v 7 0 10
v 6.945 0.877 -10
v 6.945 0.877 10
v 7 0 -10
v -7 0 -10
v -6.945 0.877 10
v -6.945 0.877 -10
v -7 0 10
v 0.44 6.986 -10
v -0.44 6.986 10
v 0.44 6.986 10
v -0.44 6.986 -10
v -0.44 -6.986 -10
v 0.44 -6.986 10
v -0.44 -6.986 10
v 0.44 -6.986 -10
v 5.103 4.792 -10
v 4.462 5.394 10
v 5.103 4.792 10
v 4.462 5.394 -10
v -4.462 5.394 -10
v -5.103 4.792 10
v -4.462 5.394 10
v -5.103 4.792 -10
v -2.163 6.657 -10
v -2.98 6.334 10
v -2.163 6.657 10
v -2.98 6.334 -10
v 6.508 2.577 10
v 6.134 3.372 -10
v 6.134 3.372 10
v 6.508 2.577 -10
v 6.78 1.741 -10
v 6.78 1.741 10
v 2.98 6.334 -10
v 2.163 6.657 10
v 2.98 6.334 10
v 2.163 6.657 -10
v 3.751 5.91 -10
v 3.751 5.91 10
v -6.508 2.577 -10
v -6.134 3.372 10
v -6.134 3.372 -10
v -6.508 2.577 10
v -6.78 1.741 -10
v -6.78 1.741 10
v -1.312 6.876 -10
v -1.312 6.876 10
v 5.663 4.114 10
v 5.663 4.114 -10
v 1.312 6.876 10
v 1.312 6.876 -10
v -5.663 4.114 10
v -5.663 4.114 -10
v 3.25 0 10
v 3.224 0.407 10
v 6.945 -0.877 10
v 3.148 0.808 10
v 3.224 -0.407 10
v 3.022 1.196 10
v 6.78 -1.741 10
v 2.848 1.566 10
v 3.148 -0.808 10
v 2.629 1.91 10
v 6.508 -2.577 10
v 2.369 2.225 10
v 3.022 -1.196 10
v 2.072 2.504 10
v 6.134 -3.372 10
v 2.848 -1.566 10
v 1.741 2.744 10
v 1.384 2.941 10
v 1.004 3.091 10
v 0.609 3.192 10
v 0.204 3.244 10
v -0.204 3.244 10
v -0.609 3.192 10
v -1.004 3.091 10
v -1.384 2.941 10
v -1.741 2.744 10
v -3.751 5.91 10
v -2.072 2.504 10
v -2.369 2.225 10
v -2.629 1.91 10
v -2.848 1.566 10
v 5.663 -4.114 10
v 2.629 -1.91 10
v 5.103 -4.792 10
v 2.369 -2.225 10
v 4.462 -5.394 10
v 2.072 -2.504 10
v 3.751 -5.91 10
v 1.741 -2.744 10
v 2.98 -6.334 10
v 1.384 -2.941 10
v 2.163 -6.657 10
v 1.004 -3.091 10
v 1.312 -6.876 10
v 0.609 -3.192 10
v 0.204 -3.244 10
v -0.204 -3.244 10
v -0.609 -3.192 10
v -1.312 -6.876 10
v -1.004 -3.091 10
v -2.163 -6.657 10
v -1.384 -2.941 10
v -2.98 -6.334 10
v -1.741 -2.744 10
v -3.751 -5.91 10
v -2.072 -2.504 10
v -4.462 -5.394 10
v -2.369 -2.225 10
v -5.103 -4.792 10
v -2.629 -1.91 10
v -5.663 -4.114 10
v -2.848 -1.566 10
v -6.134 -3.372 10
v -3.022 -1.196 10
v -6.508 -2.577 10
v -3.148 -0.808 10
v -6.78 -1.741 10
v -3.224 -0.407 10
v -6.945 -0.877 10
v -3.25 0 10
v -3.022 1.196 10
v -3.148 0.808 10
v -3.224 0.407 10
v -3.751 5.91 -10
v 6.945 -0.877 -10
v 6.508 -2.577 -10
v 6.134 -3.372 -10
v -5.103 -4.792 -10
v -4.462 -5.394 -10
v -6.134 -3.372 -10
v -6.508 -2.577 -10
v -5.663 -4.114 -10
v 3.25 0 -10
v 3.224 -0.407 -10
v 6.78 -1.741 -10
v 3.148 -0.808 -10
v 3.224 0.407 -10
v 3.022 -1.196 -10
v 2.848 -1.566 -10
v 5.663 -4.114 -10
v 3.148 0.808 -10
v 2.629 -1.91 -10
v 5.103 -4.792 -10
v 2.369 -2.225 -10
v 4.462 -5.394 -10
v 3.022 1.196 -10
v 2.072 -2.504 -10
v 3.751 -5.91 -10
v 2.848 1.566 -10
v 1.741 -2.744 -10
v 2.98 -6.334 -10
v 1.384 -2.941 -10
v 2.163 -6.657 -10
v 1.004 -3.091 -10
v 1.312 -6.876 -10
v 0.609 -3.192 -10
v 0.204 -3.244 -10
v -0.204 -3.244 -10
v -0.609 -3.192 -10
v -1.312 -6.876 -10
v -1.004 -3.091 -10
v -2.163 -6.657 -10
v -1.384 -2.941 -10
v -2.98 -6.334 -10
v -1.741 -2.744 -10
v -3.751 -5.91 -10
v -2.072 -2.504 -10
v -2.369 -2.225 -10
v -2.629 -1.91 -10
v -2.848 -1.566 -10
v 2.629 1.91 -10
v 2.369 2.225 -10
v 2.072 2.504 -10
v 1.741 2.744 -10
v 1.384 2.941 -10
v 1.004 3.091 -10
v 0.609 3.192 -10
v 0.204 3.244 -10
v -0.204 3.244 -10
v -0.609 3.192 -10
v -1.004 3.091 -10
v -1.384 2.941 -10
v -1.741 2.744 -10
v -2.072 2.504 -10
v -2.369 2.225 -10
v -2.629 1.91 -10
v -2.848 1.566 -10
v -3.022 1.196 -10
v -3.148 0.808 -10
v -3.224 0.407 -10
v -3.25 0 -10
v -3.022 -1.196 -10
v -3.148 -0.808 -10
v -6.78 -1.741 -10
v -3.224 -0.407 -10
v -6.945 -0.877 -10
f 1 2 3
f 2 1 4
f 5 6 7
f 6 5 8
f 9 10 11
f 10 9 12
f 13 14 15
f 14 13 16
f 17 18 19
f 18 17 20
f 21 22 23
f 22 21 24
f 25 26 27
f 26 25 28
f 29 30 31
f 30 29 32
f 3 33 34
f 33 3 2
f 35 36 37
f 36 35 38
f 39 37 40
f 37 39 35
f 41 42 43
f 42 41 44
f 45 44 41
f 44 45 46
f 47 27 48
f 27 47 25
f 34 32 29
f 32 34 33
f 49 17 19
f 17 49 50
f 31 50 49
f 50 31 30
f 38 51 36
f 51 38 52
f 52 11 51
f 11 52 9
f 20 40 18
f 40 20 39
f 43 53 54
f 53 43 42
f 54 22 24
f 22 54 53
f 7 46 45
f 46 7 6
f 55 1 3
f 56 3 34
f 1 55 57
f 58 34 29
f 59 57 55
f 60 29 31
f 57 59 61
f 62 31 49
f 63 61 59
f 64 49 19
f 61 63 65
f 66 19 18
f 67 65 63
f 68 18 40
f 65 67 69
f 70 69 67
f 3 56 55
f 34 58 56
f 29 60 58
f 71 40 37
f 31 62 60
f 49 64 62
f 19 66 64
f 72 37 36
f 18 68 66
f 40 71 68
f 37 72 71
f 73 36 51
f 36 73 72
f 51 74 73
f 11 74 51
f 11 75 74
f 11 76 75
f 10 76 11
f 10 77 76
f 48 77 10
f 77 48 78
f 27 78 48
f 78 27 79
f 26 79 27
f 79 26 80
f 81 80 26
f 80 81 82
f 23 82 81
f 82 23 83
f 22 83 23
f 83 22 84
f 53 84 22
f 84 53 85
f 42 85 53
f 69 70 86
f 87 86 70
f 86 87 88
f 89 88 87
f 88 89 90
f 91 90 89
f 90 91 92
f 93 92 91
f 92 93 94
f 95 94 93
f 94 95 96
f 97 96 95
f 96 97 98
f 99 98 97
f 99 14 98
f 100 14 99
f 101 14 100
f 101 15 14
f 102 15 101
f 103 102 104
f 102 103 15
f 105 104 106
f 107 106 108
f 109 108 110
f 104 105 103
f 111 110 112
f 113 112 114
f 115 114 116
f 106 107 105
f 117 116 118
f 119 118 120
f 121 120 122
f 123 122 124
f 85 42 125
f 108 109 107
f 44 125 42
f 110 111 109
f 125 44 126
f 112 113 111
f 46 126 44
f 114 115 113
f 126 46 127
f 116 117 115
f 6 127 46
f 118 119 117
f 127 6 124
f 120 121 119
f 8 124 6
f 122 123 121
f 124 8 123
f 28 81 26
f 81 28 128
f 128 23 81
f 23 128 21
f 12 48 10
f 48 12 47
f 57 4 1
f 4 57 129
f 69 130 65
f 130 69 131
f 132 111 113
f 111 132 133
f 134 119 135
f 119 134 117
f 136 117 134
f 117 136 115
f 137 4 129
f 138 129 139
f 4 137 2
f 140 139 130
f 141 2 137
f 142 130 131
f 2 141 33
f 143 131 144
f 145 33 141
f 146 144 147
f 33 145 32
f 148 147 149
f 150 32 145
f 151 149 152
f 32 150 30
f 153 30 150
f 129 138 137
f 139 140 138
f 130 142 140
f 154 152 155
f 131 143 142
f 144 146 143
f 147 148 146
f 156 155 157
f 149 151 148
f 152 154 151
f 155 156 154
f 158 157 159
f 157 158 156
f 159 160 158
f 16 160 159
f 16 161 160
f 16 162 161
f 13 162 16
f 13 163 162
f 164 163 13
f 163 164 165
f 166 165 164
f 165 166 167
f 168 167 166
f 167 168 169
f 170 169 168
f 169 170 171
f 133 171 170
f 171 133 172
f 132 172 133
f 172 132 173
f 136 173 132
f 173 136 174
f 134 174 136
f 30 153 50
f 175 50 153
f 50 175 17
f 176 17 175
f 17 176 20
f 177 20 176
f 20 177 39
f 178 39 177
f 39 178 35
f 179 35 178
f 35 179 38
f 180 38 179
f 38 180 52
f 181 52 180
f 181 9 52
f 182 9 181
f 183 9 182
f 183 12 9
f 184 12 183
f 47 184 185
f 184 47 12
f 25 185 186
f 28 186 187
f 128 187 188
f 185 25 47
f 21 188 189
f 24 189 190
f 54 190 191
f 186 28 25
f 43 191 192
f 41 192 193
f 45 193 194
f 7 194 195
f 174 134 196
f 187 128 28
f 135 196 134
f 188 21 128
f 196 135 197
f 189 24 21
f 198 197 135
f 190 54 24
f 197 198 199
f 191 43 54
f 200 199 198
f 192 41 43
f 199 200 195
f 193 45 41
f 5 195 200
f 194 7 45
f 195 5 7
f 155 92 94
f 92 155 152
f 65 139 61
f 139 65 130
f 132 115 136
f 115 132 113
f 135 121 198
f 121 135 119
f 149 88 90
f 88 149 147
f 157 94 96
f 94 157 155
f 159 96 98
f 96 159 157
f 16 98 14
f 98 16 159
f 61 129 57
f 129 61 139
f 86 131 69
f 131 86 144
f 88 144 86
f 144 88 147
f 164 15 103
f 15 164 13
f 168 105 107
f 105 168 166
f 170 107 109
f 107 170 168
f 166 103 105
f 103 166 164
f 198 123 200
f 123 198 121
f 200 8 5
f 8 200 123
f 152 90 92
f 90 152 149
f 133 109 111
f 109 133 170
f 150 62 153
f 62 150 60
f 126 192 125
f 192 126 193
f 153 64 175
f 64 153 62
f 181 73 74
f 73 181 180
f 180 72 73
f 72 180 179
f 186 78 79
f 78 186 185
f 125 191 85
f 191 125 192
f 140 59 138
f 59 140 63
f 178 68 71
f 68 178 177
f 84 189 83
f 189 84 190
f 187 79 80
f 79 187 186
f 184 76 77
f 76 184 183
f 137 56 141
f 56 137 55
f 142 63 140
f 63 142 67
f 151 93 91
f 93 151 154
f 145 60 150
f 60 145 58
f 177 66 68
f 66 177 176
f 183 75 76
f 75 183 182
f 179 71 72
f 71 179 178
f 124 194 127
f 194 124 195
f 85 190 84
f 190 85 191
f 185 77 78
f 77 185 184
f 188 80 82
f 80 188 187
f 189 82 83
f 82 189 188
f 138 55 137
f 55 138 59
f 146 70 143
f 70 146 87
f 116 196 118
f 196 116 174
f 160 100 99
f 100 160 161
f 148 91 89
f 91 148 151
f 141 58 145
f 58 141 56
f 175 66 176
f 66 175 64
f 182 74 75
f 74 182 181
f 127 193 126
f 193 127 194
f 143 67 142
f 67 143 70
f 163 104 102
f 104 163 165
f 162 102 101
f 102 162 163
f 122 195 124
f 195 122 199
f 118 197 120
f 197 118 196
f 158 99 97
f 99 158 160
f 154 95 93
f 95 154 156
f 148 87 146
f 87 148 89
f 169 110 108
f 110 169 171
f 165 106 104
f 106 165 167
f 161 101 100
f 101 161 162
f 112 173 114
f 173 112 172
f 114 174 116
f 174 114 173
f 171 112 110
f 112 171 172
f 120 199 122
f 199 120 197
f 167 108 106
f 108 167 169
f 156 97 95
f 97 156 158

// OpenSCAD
$fn = 50;


difference() {
	union() {
		translate(v = [0, 0, -10.0000000000]) {
			cylinder(h = 20, r = 7.0000000000);
		}
	}
	union() {
		translate(v = [0, 0, -100.0000000000]) {
			cylinder(h = 200, r = 3.2500000000);
		}
	}
}
